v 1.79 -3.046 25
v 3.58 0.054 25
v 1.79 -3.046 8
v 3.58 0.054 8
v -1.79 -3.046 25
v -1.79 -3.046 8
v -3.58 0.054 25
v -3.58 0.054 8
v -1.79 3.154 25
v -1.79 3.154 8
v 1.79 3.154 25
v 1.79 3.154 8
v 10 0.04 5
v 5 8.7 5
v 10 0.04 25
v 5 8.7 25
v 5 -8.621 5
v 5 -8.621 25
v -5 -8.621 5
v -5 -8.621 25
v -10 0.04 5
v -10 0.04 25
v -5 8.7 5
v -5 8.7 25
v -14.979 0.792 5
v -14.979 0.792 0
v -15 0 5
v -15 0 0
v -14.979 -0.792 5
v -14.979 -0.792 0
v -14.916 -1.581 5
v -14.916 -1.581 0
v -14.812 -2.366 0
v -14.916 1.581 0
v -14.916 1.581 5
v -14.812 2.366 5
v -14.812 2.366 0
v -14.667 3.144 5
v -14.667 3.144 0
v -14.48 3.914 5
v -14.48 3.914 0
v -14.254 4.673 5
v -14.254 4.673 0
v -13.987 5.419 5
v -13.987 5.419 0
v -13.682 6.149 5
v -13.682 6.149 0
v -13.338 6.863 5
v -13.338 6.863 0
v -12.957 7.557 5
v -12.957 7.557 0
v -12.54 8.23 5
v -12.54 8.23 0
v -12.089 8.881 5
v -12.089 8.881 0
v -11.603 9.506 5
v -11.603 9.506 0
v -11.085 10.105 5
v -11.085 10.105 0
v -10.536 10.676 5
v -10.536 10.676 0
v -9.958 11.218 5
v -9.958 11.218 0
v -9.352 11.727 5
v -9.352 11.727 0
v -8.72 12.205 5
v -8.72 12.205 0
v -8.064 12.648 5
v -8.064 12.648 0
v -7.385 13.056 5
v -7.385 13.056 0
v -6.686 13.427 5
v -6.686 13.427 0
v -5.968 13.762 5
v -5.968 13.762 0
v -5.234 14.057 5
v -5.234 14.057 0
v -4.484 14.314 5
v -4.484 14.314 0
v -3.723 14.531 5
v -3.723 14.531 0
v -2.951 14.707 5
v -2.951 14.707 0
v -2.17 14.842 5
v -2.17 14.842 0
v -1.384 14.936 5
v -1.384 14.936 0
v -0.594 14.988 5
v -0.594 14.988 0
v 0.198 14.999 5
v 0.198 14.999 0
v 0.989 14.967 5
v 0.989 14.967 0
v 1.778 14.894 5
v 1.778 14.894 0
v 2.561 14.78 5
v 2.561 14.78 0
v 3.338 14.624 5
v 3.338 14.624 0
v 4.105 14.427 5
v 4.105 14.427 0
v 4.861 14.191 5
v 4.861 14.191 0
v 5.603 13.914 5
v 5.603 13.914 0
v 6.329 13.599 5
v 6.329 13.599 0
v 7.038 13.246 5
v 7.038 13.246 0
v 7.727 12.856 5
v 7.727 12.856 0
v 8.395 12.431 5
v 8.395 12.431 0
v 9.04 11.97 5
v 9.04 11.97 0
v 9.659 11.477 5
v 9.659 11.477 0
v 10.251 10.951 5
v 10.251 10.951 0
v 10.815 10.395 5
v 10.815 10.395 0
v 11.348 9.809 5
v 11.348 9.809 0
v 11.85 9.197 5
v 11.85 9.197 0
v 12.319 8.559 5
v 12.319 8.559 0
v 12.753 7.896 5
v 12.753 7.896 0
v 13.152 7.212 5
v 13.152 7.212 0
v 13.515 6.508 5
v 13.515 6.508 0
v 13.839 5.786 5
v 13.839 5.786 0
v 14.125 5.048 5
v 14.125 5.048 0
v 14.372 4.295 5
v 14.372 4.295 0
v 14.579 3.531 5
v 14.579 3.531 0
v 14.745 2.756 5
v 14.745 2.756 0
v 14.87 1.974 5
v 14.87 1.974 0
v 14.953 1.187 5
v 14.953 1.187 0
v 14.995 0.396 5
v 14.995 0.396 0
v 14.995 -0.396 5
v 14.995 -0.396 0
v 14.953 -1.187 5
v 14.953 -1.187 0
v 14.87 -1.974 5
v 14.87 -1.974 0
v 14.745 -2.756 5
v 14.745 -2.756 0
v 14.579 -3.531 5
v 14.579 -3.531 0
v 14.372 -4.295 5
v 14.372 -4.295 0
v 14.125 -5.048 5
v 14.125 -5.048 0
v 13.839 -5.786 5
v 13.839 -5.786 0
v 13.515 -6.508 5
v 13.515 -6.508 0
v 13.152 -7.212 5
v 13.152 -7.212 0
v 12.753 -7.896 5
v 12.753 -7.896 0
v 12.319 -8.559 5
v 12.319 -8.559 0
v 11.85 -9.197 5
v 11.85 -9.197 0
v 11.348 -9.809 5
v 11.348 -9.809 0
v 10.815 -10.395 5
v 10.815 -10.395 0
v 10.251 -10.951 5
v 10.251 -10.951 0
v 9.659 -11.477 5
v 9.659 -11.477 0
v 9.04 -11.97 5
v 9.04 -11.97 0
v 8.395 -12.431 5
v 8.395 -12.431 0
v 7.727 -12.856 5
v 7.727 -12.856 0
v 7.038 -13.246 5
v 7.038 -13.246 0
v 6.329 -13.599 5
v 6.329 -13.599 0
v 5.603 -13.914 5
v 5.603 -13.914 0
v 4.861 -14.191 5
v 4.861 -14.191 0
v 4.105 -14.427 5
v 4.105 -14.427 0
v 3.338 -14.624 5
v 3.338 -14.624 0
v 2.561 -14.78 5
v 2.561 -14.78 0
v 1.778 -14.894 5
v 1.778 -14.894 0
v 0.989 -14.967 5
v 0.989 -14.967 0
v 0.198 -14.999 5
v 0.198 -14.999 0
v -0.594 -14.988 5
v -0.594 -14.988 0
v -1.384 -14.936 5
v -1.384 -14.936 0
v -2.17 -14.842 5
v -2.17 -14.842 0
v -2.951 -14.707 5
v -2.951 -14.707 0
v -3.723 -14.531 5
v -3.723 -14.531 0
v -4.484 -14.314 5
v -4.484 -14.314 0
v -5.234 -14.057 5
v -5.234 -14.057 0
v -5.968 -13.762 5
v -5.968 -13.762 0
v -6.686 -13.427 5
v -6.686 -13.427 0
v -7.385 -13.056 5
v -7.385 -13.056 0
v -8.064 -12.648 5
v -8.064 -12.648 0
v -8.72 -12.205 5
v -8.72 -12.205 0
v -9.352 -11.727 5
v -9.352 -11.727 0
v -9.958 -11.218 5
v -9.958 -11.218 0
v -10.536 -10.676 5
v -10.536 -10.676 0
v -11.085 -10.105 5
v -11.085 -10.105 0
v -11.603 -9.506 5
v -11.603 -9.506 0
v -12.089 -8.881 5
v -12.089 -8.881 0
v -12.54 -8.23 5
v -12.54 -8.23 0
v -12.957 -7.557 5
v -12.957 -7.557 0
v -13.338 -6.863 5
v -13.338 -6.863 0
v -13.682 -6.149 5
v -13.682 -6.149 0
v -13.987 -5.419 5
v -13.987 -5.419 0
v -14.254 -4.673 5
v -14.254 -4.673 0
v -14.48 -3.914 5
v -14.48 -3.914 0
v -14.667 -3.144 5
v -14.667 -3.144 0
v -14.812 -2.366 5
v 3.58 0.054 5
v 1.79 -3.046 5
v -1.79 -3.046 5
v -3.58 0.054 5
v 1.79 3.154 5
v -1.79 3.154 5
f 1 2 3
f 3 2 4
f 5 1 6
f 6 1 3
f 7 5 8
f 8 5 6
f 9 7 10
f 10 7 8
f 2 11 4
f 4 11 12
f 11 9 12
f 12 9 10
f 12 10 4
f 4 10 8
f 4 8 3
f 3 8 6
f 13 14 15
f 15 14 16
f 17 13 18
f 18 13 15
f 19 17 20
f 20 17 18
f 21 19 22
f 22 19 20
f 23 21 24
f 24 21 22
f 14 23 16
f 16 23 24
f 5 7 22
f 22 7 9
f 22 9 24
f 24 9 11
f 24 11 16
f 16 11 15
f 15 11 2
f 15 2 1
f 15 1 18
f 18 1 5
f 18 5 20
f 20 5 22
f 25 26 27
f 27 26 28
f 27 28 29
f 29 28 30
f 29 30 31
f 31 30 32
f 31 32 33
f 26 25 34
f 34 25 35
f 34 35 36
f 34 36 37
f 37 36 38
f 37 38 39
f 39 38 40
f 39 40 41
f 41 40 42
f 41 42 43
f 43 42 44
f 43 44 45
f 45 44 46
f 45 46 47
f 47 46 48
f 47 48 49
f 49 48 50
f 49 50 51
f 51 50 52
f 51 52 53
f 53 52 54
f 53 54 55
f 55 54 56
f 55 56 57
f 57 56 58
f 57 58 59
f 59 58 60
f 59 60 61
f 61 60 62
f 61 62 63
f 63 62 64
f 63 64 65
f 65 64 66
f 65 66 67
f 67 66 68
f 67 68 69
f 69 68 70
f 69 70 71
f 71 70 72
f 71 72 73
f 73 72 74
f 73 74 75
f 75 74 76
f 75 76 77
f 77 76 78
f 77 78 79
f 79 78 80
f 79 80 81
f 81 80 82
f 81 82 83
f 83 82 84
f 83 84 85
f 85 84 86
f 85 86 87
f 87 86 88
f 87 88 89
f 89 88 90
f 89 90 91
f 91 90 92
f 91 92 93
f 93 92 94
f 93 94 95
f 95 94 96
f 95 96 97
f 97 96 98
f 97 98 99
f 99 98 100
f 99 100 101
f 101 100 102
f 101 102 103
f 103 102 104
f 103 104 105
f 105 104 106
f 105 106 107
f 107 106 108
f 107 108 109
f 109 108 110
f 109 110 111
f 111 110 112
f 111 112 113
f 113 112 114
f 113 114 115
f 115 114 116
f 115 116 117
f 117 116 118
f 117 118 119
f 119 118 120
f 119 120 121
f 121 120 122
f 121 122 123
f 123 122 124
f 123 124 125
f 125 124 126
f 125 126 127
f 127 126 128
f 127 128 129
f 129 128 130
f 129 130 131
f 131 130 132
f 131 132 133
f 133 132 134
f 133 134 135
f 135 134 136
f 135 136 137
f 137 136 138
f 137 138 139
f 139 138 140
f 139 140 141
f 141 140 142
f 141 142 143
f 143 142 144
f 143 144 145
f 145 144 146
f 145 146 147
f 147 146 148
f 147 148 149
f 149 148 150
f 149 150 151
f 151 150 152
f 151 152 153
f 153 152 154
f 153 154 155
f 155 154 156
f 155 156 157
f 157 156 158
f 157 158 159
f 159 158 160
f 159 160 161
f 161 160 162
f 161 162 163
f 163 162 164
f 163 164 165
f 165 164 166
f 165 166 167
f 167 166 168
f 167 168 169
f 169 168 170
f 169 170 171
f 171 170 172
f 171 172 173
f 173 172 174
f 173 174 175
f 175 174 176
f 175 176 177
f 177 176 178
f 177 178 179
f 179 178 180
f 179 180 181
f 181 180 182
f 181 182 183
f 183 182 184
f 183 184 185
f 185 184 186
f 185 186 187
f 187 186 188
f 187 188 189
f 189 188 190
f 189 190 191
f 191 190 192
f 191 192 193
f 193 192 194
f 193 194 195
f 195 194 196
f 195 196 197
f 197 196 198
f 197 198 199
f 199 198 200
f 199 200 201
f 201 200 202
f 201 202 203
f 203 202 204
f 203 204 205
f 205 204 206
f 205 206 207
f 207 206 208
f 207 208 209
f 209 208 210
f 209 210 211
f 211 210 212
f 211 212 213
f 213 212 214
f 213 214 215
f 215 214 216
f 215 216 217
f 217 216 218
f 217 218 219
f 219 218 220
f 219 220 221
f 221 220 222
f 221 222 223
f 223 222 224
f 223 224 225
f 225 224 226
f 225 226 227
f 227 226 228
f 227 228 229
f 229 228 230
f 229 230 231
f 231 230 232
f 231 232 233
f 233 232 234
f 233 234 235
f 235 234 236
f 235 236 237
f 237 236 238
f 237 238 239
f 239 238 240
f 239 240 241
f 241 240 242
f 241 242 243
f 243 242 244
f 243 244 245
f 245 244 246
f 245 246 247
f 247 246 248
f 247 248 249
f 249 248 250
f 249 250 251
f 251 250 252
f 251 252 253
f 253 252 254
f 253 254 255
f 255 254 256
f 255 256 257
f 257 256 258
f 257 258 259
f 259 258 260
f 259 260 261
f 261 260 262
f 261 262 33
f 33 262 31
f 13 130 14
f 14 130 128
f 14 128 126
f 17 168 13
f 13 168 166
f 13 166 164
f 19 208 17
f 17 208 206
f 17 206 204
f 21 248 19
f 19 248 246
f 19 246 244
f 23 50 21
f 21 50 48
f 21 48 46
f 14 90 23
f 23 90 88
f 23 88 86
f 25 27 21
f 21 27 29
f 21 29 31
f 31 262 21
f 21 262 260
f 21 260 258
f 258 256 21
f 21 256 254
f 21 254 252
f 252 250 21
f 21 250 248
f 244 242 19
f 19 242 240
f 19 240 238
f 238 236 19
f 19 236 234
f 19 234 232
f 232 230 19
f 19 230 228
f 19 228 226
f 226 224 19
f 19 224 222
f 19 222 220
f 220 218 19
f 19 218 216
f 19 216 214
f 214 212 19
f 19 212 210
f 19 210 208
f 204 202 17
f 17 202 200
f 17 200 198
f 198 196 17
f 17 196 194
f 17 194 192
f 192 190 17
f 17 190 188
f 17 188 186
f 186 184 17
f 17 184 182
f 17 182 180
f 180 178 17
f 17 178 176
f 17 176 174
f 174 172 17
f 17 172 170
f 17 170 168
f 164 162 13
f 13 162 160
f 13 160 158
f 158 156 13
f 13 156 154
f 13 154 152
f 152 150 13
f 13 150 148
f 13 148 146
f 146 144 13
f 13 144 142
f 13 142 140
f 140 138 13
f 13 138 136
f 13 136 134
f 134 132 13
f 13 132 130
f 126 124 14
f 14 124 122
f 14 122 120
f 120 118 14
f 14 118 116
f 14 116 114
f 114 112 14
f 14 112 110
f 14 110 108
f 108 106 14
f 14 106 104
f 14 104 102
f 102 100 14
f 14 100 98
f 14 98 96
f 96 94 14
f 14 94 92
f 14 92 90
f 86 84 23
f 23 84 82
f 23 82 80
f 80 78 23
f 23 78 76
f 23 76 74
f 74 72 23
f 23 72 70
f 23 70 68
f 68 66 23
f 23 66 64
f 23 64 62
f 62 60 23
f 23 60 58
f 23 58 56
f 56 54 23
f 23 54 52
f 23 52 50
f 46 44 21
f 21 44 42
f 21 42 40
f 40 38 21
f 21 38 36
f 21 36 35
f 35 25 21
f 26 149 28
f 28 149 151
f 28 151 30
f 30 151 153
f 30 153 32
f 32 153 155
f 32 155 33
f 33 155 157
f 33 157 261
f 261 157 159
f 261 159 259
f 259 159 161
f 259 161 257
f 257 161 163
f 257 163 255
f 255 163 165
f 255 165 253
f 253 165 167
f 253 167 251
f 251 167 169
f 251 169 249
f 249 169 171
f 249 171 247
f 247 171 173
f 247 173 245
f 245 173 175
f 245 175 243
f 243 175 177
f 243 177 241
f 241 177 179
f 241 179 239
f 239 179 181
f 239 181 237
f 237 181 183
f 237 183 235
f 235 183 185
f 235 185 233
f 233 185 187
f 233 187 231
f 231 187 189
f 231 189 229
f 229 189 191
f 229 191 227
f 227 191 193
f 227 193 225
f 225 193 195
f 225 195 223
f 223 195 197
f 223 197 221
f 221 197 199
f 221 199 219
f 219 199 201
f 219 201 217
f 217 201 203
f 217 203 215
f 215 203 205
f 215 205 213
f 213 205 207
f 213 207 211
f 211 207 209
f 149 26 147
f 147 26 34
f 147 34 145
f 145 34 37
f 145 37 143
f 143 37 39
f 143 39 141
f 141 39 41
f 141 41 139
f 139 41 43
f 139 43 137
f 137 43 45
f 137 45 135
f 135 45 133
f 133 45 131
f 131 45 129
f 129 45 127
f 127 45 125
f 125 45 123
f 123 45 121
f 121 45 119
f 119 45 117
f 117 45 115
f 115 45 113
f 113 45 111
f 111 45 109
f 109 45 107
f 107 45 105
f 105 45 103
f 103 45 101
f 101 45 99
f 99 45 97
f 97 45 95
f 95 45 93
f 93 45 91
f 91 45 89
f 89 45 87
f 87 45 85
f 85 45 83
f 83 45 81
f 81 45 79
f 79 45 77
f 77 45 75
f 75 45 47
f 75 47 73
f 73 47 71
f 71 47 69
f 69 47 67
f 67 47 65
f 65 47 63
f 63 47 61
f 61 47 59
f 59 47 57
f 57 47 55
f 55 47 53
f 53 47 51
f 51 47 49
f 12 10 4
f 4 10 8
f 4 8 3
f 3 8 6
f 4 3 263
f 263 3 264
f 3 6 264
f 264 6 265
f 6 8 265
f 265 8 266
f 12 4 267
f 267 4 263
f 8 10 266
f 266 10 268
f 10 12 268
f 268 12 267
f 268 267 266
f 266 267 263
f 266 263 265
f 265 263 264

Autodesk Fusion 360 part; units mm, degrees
sketch "Sketch1" plane through (0, 0, 0) normal (0, 0, 1) x (1, 0, 0)
  circle A0 centre (0, 0) radius 15
  dimension "d1" = 30
extrude "Extrude1" add sketch "Sketch1" along normal blind 5 makes body 1
sketch "Sketch2" plane through (0, 0, 5) normal (0, 0, 1) x (-1, 0, 0)
  circle A0 centre (0, 0) radius 15
  line L0 (5, -8.7) -> (10, -0.0397)
  line L1 (10, -0.0397) -> (5, 8.6205)
  line L2 (5, 8.6205) -> (-5, 8.6205)
  line L3 (-5, 8.6205) -> (-10, -0.0397)
  line L4 (-10, -0.0397) -> (-5, -8.7)
  line L5 (-5, -8.7) -> (5, -8.7)
  point P0 (0, -0.0397)
extrude "Extrude2" add sketch "Sketch2" along normal blind 20 contours L0 L1 L2 L3 L4 L5 bodies 1
sketch "Sketch3" plane through (0, 0, 5) normal (0, 0, 1) x (-1, 0, 0)
  line L0 (1.7898, -3.1538) -> (3.5796, -0.0538)
  line L1 (3.5796, -0.0538) -> (1.7898, 3.0462)
  line L2 (1.7898, 3.0462) -> (-1.7898, 3.0462)
  line L3 (-1.7898, 3.0462) -> (-3.5796, -0.0538)
  line L4 (-3.5796, -0.0538) -> (-1.7898, -3.1538)
  line L5 (-1.7898, -3.1538) -> (1.7898, -3.1538)
  point P0 (0, -0.0538)
  dimension "d6" = 6.2
extrude "Extrude3" add sketch "Sketch3" along normal blind 14 separate body makes body 2
extrude "Extrude4" add 1 faces at (-0.5966, -0.9795, 19) along direction (0, 0, 1) blind 8 on bodies 2 bodies 2
extrude "Extrude5" cut 1 faces at (-0.5966, -0.9795, 27) along direction (0, 0, -1) blind 19 on bodies 2 bodies 1 2
